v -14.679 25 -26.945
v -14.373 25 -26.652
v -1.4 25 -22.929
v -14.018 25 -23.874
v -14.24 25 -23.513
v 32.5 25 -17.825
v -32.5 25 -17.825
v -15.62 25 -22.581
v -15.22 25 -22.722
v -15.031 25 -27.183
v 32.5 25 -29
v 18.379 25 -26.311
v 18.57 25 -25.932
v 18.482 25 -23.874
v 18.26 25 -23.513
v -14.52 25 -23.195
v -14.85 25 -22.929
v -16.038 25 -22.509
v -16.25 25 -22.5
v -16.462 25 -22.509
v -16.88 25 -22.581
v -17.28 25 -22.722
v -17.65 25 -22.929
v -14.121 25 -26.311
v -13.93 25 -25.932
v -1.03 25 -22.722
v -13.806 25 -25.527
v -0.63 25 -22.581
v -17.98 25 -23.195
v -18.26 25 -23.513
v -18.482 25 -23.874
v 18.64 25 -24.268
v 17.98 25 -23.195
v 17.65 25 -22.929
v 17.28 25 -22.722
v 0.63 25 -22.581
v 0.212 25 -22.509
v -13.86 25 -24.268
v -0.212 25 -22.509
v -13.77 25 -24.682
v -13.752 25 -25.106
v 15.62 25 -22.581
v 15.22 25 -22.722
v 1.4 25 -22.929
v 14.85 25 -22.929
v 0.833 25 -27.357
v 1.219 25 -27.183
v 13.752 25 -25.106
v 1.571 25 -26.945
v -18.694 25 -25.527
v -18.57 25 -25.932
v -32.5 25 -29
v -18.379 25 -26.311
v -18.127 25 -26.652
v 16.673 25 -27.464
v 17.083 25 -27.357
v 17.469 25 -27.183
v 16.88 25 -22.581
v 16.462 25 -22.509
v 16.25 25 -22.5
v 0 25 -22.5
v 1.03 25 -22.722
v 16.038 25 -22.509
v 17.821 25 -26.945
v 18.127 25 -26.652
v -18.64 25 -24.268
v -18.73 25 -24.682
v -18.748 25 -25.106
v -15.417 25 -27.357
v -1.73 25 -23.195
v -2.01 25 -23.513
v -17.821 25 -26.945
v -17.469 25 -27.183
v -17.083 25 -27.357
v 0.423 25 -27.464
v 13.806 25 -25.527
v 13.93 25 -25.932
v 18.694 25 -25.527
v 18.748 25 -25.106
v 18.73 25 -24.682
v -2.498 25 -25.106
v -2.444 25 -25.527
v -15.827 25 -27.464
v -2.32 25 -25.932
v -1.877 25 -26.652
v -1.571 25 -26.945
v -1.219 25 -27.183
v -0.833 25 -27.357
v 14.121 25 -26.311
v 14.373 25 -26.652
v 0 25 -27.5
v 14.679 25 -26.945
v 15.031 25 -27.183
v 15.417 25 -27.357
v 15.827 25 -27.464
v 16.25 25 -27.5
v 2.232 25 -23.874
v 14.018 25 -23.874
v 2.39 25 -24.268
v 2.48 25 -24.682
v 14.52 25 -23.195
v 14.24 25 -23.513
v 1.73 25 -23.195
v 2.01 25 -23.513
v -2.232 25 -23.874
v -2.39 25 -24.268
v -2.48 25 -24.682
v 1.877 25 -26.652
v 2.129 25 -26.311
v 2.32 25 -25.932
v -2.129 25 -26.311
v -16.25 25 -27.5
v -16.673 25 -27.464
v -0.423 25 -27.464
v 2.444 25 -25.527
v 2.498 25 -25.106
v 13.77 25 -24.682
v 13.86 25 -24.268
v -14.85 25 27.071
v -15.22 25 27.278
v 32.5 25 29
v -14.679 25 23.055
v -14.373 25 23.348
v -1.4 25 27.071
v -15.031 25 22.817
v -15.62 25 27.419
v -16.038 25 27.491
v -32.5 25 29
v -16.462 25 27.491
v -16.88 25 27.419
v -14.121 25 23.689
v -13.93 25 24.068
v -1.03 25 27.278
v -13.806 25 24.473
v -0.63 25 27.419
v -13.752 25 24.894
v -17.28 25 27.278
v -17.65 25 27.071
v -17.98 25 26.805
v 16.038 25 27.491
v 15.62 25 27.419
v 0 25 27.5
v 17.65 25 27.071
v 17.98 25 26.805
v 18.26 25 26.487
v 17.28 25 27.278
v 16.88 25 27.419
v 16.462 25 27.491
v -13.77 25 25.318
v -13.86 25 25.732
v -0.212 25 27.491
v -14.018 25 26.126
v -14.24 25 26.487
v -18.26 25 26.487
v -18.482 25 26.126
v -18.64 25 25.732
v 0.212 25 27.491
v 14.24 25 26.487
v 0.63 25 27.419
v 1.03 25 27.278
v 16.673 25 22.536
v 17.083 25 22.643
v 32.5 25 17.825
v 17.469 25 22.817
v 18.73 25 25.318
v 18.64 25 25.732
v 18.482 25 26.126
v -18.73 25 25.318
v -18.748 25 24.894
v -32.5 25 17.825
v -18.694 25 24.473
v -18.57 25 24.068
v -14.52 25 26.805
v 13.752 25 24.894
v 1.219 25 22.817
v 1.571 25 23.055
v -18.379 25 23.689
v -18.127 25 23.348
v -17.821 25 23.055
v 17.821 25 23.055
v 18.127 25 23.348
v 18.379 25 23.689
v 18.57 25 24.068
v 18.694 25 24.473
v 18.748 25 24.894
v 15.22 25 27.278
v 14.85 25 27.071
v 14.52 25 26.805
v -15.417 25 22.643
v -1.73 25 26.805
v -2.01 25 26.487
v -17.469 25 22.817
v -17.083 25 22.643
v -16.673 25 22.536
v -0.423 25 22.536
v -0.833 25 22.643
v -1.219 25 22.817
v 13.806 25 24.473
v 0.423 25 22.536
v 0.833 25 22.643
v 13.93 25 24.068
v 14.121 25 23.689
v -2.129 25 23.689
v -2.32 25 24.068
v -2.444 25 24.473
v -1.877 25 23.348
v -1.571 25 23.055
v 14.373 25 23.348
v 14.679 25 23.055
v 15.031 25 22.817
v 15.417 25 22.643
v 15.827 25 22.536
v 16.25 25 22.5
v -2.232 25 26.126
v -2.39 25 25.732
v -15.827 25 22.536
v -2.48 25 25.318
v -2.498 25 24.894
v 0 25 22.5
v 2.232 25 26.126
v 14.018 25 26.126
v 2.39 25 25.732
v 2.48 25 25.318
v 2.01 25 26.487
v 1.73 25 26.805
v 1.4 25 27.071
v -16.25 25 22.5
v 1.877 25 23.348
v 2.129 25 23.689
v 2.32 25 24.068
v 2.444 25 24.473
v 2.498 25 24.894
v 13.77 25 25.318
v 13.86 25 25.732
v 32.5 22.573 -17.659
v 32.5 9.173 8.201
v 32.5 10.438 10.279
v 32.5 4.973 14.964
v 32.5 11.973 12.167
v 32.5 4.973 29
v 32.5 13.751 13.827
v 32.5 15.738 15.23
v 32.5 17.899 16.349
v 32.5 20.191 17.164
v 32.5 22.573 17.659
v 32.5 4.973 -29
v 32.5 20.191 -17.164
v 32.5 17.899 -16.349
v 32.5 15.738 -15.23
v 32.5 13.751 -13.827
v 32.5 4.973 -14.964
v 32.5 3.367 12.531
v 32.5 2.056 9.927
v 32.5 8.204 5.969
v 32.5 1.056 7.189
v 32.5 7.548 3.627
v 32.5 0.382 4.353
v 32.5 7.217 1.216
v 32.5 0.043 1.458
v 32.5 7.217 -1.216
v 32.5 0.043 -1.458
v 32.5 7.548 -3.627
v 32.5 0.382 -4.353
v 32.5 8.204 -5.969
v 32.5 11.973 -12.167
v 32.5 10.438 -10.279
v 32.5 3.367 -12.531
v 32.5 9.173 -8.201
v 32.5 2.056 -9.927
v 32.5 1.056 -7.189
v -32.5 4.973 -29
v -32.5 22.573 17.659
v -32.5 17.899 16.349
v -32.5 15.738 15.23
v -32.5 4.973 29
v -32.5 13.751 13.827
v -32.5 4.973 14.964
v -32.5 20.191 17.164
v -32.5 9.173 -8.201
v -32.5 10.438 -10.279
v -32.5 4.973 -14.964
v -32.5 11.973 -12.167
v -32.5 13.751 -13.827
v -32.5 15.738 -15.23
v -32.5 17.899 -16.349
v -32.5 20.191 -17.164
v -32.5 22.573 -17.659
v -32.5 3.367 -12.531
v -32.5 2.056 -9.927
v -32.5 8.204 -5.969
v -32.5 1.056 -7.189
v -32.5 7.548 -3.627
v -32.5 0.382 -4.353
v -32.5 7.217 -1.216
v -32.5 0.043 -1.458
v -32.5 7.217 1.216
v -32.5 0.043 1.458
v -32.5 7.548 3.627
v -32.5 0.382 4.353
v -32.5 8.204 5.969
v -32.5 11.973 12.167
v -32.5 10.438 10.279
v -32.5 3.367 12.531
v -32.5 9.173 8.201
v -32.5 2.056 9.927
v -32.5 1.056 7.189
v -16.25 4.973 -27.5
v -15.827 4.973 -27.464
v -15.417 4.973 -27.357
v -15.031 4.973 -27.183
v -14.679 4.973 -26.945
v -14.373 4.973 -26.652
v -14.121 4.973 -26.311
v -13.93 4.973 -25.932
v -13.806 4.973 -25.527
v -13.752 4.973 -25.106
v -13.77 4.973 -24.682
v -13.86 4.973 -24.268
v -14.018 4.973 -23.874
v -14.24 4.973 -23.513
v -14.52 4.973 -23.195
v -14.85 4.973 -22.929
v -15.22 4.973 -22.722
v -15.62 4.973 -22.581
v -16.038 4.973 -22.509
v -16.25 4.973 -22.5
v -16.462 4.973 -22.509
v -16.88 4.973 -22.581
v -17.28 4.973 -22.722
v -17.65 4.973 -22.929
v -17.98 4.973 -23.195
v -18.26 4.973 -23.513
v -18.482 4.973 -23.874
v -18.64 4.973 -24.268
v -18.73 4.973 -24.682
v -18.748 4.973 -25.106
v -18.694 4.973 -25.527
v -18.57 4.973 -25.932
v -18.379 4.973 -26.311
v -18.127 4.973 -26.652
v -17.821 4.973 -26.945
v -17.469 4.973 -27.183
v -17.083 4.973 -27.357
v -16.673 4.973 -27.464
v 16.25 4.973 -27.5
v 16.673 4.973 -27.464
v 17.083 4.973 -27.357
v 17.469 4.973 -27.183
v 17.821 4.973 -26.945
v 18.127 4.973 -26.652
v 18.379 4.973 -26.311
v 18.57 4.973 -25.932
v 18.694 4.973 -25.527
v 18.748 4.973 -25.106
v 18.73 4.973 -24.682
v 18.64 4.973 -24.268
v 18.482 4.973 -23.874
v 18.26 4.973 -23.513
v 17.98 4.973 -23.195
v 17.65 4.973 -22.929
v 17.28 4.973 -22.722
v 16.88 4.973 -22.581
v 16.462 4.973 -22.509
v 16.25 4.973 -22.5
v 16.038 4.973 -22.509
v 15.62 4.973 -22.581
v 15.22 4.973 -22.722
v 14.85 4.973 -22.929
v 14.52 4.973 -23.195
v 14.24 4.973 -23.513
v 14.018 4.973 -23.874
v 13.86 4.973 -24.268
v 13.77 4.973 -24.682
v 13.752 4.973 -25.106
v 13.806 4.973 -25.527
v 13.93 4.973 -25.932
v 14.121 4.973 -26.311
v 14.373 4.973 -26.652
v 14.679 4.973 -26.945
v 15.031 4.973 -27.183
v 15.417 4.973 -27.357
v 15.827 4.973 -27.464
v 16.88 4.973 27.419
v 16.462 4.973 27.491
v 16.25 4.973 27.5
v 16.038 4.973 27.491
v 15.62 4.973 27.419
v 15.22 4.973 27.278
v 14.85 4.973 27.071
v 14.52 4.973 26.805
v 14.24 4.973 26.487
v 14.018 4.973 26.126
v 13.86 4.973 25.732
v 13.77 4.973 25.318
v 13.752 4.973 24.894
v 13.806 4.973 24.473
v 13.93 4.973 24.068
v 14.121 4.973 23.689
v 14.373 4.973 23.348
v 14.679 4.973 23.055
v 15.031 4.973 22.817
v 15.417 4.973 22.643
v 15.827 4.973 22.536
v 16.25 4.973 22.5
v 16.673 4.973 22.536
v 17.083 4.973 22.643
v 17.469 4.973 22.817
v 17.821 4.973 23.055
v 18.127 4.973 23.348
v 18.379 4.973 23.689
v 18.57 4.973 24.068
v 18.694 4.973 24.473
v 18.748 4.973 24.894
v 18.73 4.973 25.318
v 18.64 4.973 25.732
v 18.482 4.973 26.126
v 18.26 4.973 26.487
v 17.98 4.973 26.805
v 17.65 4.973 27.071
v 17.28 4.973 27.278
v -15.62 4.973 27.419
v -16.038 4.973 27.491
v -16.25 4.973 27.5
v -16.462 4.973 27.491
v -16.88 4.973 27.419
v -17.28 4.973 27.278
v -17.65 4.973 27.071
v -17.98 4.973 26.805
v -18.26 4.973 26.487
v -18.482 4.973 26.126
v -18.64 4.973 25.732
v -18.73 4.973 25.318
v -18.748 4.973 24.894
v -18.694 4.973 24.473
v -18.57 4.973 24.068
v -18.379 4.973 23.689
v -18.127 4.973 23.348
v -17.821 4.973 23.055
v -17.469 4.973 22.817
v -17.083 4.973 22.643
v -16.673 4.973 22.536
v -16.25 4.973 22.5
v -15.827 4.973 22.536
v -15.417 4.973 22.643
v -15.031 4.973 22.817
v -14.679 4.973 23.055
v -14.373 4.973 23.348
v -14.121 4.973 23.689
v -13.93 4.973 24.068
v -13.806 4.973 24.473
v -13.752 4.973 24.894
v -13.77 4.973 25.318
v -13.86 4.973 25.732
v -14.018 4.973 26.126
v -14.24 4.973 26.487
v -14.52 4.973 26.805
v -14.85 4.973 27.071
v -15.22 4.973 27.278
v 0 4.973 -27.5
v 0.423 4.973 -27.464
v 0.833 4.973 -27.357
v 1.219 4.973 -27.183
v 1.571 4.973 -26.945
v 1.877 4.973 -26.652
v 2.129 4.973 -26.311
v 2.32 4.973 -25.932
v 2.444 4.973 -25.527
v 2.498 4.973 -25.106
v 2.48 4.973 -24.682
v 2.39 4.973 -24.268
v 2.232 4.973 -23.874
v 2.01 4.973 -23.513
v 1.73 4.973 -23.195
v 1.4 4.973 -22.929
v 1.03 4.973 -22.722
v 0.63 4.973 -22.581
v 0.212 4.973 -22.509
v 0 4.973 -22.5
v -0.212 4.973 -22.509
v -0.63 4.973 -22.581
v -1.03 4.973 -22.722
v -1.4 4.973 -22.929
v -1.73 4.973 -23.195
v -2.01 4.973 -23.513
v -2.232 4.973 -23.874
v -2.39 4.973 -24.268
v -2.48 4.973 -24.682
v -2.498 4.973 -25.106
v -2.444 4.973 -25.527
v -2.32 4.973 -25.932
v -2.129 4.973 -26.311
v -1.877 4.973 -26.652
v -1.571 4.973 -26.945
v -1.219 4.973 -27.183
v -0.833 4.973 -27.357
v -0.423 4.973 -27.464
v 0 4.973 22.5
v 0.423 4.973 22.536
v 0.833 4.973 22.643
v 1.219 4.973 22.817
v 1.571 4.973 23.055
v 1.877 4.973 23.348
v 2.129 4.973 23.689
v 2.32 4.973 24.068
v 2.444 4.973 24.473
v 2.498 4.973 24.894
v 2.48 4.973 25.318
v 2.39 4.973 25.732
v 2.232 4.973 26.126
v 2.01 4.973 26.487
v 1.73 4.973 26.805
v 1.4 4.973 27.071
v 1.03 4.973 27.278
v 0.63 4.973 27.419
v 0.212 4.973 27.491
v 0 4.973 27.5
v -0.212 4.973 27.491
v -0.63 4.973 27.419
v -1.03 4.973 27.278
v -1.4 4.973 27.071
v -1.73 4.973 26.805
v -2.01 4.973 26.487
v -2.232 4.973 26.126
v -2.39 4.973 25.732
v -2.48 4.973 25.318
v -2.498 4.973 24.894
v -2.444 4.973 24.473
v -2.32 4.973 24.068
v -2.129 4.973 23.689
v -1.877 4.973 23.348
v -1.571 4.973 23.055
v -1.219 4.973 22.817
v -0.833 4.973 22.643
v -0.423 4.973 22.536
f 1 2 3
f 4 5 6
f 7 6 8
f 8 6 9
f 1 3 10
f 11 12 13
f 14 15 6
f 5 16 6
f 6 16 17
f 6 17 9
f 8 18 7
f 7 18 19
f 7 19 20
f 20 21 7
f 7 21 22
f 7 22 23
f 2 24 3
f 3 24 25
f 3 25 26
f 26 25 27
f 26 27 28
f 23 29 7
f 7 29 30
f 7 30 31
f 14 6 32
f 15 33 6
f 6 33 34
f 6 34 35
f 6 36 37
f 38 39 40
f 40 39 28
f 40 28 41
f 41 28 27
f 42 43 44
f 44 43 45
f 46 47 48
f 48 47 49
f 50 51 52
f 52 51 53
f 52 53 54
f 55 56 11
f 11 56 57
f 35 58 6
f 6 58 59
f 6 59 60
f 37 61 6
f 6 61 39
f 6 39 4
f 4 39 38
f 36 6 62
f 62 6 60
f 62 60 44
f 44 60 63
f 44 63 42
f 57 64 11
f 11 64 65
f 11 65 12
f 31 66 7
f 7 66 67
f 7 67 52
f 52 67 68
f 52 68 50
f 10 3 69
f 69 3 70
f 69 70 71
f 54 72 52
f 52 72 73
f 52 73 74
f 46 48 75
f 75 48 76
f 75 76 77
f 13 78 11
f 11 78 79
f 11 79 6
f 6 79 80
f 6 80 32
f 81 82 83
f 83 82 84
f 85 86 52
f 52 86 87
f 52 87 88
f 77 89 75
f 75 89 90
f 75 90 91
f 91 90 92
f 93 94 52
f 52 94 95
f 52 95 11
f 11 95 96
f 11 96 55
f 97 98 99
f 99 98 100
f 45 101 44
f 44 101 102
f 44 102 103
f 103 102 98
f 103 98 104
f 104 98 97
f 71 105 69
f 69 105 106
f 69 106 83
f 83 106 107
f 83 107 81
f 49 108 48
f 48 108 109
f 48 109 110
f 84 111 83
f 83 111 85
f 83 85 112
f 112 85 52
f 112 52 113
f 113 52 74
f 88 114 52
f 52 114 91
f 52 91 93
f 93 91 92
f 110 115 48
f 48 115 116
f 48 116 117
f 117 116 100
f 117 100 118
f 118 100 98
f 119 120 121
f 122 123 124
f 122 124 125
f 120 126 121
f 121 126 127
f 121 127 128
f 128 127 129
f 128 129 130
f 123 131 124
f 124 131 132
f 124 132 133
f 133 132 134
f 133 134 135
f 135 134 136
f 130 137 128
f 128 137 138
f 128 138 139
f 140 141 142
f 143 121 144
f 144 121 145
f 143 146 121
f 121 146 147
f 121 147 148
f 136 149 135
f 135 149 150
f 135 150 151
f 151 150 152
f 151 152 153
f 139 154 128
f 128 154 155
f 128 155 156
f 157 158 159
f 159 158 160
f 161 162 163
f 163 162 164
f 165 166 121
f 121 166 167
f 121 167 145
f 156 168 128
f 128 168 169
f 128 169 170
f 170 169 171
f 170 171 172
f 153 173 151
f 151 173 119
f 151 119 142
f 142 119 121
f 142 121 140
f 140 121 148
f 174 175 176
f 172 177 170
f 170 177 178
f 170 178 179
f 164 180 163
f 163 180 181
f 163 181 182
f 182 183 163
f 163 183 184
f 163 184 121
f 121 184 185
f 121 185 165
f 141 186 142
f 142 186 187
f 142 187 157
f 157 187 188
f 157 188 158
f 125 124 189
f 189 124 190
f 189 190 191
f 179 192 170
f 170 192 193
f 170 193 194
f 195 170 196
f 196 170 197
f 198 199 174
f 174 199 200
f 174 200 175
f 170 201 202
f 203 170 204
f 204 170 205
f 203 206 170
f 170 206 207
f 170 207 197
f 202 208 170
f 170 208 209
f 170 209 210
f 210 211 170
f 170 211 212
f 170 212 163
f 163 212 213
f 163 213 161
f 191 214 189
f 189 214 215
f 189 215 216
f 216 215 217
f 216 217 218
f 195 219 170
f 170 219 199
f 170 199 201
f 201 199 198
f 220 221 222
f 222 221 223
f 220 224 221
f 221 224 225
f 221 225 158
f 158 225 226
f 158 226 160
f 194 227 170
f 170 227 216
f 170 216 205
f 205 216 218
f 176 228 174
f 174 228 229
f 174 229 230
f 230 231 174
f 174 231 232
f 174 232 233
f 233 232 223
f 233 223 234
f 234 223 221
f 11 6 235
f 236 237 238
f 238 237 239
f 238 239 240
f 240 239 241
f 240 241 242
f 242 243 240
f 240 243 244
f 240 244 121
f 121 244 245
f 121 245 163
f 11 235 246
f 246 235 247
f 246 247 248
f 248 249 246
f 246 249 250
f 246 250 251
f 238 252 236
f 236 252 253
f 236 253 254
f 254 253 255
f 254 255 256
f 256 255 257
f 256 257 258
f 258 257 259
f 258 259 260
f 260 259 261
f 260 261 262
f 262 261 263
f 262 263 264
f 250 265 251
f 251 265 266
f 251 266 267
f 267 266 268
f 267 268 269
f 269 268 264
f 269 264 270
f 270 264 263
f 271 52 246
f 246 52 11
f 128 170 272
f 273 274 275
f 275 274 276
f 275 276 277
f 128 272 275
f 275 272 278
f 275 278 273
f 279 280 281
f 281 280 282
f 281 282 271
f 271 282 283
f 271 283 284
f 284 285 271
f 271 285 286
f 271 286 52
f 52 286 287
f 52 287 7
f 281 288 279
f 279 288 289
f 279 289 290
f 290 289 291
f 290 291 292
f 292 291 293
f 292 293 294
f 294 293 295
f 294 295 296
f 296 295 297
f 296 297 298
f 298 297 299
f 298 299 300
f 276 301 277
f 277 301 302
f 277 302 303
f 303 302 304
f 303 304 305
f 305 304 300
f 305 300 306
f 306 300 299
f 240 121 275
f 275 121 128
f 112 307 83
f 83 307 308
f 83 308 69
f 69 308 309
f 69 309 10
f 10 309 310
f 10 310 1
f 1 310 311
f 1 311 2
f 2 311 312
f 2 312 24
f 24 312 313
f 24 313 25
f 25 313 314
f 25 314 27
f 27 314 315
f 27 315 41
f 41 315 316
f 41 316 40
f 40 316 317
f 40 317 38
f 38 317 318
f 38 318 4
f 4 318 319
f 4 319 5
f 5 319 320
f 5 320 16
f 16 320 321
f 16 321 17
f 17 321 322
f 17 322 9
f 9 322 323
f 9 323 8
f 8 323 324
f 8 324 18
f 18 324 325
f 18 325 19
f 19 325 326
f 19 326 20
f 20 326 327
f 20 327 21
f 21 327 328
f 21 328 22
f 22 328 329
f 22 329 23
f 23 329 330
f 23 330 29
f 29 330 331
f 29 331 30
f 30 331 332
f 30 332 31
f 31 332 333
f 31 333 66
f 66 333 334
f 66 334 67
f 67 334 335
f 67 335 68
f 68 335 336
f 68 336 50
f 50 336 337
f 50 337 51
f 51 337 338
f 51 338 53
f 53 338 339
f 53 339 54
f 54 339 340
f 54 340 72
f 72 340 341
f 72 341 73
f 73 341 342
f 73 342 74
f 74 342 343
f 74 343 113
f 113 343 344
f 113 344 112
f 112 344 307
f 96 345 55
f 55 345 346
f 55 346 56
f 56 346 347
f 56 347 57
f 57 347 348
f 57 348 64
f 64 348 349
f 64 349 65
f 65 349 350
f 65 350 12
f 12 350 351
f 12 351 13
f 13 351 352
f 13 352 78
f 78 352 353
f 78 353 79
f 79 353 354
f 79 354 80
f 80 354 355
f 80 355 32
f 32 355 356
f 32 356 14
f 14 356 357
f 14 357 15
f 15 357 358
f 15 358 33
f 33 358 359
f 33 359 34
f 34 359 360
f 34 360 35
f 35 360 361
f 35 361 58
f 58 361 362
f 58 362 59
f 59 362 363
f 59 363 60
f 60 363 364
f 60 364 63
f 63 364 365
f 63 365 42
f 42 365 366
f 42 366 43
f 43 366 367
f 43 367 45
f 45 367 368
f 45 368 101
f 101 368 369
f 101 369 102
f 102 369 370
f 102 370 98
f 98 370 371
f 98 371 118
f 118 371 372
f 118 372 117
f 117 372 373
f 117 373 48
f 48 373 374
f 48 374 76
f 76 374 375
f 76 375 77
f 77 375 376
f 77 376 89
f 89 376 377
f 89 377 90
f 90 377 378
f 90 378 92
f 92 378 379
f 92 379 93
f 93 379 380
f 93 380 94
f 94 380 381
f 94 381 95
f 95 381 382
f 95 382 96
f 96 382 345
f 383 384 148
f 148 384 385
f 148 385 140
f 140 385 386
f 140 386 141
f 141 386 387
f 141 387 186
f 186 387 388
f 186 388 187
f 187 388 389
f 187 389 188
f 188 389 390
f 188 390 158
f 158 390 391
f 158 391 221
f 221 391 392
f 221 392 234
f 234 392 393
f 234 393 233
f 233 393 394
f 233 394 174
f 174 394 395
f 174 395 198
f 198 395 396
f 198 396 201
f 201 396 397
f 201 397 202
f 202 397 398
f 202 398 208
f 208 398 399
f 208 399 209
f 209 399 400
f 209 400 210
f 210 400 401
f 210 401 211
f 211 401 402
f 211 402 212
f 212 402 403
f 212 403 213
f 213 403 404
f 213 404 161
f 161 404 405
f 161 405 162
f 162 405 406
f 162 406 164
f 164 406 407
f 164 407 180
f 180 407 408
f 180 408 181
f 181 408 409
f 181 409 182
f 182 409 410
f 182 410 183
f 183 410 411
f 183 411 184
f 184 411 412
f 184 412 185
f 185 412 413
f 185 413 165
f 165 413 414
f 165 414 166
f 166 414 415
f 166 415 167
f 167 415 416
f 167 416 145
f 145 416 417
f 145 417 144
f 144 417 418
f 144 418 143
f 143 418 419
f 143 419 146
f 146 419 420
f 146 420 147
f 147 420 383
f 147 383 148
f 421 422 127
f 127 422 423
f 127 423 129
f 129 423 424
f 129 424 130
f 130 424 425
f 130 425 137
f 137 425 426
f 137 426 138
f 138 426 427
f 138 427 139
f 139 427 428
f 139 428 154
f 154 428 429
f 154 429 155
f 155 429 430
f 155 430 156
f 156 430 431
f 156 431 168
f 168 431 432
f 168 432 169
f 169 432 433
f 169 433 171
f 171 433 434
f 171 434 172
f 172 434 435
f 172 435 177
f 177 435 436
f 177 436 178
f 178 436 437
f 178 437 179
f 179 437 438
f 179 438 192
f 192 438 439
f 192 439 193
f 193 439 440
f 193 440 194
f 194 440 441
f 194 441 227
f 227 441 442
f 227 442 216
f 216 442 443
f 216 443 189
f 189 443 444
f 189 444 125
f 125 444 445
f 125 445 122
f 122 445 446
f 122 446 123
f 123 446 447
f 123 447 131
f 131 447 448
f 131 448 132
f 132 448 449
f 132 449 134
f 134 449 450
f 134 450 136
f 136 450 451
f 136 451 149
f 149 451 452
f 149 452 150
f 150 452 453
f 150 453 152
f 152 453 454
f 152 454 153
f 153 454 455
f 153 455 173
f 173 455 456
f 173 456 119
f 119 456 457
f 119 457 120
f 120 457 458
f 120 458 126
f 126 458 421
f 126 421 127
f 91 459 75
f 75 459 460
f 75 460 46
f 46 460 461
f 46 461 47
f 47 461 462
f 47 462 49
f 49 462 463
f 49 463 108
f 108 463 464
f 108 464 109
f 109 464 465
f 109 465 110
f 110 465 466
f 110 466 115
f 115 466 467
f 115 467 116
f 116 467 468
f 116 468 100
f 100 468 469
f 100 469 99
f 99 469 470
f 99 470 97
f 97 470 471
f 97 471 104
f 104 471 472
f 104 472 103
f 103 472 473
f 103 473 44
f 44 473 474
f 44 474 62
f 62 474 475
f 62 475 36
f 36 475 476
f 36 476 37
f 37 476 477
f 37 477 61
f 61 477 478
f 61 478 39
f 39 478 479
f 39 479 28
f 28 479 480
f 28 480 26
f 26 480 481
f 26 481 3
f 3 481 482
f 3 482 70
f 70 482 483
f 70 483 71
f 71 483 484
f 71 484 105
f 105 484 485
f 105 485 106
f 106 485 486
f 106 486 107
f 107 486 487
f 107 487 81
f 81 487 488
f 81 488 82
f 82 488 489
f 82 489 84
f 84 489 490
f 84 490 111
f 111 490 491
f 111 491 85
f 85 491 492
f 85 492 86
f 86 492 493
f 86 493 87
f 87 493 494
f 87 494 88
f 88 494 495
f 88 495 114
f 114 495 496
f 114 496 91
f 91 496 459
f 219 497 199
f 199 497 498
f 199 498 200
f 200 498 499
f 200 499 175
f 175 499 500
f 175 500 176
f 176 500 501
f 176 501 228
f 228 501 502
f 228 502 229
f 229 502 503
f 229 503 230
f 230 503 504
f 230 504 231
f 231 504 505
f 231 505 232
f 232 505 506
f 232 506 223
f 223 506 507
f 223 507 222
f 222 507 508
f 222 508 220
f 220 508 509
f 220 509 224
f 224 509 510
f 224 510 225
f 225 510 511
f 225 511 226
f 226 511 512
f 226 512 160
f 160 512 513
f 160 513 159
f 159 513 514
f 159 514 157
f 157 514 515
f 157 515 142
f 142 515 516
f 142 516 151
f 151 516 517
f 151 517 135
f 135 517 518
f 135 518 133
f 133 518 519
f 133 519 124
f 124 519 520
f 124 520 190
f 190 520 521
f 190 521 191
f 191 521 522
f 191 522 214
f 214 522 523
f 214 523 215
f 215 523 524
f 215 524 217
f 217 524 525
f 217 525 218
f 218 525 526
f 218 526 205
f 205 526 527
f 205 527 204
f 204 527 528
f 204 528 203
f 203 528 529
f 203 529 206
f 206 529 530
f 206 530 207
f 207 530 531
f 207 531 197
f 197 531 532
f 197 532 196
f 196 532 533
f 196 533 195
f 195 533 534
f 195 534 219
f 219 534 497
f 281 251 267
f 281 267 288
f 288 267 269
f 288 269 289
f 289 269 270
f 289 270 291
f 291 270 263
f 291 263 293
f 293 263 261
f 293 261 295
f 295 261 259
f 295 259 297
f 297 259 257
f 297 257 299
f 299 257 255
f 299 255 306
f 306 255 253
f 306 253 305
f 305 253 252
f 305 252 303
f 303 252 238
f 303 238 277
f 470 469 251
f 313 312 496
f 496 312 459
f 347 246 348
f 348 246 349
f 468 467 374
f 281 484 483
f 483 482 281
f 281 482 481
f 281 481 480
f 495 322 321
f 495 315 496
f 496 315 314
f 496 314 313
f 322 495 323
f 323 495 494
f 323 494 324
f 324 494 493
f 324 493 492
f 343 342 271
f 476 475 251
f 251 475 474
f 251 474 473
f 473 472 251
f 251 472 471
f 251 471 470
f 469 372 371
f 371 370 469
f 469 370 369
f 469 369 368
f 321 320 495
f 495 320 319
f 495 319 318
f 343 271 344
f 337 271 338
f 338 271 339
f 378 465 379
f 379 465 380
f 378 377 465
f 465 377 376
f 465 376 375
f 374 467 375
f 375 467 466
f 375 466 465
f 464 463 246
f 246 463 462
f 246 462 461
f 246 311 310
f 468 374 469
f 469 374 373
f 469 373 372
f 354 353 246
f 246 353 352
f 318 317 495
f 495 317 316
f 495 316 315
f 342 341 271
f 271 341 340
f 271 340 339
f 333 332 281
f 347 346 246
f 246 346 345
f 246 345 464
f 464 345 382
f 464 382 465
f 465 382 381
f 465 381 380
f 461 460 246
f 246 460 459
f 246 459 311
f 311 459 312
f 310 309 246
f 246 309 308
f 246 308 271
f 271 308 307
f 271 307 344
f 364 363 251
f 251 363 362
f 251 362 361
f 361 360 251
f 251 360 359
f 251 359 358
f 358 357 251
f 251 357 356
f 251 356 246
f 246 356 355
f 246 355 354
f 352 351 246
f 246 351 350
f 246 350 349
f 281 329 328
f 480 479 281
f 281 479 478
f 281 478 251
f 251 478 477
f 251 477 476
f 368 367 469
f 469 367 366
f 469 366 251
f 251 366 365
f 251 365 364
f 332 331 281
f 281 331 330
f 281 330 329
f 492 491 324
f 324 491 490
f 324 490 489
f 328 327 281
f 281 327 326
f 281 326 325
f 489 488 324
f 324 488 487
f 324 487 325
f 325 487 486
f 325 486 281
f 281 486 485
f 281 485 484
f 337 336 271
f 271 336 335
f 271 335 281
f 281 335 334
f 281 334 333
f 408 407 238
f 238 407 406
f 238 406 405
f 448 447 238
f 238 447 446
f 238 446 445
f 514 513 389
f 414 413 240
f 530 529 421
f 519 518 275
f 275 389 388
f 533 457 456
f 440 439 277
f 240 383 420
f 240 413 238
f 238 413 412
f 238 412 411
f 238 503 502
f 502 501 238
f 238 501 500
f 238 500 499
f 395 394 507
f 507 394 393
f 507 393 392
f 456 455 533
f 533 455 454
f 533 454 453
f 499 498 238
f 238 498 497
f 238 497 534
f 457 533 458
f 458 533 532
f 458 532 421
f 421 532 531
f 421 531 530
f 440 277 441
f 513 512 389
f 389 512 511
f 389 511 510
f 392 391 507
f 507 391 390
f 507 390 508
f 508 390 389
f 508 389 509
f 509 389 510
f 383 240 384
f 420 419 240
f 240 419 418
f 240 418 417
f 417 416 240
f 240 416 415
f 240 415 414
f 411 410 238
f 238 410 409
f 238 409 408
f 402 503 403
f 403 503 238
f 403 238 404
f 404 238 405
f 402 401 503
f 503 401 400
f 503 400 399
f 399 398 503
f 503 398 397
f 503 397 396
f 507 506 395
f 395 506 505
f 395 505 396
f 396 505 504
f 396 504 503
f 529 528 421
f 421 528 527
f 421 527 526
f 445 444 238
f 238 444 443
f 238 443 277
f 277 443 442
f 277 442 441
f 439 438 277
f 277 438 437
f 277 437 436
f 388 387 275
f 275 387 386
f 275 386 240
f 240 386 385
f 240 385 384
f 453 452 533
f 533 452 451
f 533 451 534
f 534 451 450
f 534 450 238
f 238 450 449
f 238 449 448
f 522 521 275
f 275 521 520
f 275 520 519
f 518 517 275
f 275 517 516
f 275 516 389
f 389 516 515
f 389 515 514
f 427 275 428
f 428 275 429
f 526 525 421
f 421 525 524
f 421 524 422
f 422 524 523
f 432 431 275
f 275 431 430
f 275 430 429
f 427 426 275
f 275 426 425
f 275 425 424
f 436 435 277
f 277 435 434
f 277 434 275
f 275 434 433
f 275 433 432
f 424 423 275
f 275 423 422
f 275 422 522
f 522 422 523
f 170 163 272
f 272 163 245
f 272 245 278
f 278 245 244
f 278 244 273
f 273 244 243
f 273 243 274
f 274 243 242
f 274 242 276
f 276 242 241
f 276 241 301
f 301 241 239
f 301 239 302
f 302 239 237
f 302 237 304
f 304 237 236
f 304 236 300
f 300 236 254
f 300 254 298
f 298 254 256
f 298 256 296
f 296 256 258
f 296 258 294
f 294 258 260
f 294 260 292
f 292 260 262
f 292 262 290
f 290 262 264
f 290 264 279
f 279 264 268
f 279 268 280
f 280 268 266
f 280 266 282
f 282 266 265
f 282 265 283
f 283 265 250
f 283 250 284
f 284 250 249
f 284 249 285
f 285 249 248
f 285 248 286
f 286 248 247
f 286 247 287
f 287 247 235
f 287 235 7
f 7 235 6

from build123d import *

# Parameters (mm, degrees)
SKETCH1_W           = 65
SKETCH1_H           = 58
SKETCH1_R           = 2.5
BOSS_EXTRUDE1_DEPTH = 25
SKETCH2_R           = 17.825
CUT_EXTRUDE1_DEPTH  = 76.43871685


with BuildPart() as part:
    # Sketch1 → Boss-Extrude1 (new body)
    with BuildSketch(Plane(origin=(0, 0, 0), x_dir=(1, 0, 0), z_dir=(0, 1, 0))):
        Rectangle(SKETCH1_W, SKETCH1_H)
        with Locations(Location((-16.25, 25, 0), (0, 0, 270))):
            Circle(SKETCH1_R, mode=Mode.SUBTRACT)
        with Locations(Location((16.25, 25, 0), (0, 0, 270))):
            Circle(SKETCH1_R, mode=Mode.SUBTRACT)
        with Locations(Location((16.25, -25, 0), (0, 0, 90))):
            Circle(SKETCH1_R, mode=Mode.SUBTRACT)
        with Locations(Location((-16.25, -25, 0), (0, 0, 90))):
            Circle(SKETCH1_R, mode=Mode.SUBTRACT)
        with Locations(Location((0, 25, 0), (0, 0, 270))):
            Circle(SKETCH1_R, mode=Mode.SUBTRACT)
        with Locations(Location((0, -25, 0), (0, 0, 270))):
            Circle(SKETCH1_R, mode=Mode.SUBTRACT)
    extrude(amount=BOSS_EXTRUDE1_DEPTH)

    # Sketch2 → Cut-Extrude1 (cut, through all)
    with BuildSketch(Plane(origin=(32.5, 0, 0), x_dir=(0, 0, -1), z_dir=(1, 0, 0))):
        with Locations((0, 25)):
            Circle(SKETCH2_R)
        with BuildLine():
            Line((-14.963830053, 4.972923575), (-29, 4.972923575))
            Line((-29, 4.972923575), (-29, -6.793967085))
            Line((-29, -6.793967085), (29, -6.793967085))
            Line((29, -6.793967085), (29, 4.972923575))
            Line((29, 4.972923575), (14.963830053, 4.972923575))
            ThreePointArc((14.963830053, 4.972923575), (0, 0), (-14.963830053, 4.972923575))
        make_face()
    extrude(amount=-CUT_EXTRUDE1_DEPTH, mode=Mode.SUBTRACT)


solid = part.part
